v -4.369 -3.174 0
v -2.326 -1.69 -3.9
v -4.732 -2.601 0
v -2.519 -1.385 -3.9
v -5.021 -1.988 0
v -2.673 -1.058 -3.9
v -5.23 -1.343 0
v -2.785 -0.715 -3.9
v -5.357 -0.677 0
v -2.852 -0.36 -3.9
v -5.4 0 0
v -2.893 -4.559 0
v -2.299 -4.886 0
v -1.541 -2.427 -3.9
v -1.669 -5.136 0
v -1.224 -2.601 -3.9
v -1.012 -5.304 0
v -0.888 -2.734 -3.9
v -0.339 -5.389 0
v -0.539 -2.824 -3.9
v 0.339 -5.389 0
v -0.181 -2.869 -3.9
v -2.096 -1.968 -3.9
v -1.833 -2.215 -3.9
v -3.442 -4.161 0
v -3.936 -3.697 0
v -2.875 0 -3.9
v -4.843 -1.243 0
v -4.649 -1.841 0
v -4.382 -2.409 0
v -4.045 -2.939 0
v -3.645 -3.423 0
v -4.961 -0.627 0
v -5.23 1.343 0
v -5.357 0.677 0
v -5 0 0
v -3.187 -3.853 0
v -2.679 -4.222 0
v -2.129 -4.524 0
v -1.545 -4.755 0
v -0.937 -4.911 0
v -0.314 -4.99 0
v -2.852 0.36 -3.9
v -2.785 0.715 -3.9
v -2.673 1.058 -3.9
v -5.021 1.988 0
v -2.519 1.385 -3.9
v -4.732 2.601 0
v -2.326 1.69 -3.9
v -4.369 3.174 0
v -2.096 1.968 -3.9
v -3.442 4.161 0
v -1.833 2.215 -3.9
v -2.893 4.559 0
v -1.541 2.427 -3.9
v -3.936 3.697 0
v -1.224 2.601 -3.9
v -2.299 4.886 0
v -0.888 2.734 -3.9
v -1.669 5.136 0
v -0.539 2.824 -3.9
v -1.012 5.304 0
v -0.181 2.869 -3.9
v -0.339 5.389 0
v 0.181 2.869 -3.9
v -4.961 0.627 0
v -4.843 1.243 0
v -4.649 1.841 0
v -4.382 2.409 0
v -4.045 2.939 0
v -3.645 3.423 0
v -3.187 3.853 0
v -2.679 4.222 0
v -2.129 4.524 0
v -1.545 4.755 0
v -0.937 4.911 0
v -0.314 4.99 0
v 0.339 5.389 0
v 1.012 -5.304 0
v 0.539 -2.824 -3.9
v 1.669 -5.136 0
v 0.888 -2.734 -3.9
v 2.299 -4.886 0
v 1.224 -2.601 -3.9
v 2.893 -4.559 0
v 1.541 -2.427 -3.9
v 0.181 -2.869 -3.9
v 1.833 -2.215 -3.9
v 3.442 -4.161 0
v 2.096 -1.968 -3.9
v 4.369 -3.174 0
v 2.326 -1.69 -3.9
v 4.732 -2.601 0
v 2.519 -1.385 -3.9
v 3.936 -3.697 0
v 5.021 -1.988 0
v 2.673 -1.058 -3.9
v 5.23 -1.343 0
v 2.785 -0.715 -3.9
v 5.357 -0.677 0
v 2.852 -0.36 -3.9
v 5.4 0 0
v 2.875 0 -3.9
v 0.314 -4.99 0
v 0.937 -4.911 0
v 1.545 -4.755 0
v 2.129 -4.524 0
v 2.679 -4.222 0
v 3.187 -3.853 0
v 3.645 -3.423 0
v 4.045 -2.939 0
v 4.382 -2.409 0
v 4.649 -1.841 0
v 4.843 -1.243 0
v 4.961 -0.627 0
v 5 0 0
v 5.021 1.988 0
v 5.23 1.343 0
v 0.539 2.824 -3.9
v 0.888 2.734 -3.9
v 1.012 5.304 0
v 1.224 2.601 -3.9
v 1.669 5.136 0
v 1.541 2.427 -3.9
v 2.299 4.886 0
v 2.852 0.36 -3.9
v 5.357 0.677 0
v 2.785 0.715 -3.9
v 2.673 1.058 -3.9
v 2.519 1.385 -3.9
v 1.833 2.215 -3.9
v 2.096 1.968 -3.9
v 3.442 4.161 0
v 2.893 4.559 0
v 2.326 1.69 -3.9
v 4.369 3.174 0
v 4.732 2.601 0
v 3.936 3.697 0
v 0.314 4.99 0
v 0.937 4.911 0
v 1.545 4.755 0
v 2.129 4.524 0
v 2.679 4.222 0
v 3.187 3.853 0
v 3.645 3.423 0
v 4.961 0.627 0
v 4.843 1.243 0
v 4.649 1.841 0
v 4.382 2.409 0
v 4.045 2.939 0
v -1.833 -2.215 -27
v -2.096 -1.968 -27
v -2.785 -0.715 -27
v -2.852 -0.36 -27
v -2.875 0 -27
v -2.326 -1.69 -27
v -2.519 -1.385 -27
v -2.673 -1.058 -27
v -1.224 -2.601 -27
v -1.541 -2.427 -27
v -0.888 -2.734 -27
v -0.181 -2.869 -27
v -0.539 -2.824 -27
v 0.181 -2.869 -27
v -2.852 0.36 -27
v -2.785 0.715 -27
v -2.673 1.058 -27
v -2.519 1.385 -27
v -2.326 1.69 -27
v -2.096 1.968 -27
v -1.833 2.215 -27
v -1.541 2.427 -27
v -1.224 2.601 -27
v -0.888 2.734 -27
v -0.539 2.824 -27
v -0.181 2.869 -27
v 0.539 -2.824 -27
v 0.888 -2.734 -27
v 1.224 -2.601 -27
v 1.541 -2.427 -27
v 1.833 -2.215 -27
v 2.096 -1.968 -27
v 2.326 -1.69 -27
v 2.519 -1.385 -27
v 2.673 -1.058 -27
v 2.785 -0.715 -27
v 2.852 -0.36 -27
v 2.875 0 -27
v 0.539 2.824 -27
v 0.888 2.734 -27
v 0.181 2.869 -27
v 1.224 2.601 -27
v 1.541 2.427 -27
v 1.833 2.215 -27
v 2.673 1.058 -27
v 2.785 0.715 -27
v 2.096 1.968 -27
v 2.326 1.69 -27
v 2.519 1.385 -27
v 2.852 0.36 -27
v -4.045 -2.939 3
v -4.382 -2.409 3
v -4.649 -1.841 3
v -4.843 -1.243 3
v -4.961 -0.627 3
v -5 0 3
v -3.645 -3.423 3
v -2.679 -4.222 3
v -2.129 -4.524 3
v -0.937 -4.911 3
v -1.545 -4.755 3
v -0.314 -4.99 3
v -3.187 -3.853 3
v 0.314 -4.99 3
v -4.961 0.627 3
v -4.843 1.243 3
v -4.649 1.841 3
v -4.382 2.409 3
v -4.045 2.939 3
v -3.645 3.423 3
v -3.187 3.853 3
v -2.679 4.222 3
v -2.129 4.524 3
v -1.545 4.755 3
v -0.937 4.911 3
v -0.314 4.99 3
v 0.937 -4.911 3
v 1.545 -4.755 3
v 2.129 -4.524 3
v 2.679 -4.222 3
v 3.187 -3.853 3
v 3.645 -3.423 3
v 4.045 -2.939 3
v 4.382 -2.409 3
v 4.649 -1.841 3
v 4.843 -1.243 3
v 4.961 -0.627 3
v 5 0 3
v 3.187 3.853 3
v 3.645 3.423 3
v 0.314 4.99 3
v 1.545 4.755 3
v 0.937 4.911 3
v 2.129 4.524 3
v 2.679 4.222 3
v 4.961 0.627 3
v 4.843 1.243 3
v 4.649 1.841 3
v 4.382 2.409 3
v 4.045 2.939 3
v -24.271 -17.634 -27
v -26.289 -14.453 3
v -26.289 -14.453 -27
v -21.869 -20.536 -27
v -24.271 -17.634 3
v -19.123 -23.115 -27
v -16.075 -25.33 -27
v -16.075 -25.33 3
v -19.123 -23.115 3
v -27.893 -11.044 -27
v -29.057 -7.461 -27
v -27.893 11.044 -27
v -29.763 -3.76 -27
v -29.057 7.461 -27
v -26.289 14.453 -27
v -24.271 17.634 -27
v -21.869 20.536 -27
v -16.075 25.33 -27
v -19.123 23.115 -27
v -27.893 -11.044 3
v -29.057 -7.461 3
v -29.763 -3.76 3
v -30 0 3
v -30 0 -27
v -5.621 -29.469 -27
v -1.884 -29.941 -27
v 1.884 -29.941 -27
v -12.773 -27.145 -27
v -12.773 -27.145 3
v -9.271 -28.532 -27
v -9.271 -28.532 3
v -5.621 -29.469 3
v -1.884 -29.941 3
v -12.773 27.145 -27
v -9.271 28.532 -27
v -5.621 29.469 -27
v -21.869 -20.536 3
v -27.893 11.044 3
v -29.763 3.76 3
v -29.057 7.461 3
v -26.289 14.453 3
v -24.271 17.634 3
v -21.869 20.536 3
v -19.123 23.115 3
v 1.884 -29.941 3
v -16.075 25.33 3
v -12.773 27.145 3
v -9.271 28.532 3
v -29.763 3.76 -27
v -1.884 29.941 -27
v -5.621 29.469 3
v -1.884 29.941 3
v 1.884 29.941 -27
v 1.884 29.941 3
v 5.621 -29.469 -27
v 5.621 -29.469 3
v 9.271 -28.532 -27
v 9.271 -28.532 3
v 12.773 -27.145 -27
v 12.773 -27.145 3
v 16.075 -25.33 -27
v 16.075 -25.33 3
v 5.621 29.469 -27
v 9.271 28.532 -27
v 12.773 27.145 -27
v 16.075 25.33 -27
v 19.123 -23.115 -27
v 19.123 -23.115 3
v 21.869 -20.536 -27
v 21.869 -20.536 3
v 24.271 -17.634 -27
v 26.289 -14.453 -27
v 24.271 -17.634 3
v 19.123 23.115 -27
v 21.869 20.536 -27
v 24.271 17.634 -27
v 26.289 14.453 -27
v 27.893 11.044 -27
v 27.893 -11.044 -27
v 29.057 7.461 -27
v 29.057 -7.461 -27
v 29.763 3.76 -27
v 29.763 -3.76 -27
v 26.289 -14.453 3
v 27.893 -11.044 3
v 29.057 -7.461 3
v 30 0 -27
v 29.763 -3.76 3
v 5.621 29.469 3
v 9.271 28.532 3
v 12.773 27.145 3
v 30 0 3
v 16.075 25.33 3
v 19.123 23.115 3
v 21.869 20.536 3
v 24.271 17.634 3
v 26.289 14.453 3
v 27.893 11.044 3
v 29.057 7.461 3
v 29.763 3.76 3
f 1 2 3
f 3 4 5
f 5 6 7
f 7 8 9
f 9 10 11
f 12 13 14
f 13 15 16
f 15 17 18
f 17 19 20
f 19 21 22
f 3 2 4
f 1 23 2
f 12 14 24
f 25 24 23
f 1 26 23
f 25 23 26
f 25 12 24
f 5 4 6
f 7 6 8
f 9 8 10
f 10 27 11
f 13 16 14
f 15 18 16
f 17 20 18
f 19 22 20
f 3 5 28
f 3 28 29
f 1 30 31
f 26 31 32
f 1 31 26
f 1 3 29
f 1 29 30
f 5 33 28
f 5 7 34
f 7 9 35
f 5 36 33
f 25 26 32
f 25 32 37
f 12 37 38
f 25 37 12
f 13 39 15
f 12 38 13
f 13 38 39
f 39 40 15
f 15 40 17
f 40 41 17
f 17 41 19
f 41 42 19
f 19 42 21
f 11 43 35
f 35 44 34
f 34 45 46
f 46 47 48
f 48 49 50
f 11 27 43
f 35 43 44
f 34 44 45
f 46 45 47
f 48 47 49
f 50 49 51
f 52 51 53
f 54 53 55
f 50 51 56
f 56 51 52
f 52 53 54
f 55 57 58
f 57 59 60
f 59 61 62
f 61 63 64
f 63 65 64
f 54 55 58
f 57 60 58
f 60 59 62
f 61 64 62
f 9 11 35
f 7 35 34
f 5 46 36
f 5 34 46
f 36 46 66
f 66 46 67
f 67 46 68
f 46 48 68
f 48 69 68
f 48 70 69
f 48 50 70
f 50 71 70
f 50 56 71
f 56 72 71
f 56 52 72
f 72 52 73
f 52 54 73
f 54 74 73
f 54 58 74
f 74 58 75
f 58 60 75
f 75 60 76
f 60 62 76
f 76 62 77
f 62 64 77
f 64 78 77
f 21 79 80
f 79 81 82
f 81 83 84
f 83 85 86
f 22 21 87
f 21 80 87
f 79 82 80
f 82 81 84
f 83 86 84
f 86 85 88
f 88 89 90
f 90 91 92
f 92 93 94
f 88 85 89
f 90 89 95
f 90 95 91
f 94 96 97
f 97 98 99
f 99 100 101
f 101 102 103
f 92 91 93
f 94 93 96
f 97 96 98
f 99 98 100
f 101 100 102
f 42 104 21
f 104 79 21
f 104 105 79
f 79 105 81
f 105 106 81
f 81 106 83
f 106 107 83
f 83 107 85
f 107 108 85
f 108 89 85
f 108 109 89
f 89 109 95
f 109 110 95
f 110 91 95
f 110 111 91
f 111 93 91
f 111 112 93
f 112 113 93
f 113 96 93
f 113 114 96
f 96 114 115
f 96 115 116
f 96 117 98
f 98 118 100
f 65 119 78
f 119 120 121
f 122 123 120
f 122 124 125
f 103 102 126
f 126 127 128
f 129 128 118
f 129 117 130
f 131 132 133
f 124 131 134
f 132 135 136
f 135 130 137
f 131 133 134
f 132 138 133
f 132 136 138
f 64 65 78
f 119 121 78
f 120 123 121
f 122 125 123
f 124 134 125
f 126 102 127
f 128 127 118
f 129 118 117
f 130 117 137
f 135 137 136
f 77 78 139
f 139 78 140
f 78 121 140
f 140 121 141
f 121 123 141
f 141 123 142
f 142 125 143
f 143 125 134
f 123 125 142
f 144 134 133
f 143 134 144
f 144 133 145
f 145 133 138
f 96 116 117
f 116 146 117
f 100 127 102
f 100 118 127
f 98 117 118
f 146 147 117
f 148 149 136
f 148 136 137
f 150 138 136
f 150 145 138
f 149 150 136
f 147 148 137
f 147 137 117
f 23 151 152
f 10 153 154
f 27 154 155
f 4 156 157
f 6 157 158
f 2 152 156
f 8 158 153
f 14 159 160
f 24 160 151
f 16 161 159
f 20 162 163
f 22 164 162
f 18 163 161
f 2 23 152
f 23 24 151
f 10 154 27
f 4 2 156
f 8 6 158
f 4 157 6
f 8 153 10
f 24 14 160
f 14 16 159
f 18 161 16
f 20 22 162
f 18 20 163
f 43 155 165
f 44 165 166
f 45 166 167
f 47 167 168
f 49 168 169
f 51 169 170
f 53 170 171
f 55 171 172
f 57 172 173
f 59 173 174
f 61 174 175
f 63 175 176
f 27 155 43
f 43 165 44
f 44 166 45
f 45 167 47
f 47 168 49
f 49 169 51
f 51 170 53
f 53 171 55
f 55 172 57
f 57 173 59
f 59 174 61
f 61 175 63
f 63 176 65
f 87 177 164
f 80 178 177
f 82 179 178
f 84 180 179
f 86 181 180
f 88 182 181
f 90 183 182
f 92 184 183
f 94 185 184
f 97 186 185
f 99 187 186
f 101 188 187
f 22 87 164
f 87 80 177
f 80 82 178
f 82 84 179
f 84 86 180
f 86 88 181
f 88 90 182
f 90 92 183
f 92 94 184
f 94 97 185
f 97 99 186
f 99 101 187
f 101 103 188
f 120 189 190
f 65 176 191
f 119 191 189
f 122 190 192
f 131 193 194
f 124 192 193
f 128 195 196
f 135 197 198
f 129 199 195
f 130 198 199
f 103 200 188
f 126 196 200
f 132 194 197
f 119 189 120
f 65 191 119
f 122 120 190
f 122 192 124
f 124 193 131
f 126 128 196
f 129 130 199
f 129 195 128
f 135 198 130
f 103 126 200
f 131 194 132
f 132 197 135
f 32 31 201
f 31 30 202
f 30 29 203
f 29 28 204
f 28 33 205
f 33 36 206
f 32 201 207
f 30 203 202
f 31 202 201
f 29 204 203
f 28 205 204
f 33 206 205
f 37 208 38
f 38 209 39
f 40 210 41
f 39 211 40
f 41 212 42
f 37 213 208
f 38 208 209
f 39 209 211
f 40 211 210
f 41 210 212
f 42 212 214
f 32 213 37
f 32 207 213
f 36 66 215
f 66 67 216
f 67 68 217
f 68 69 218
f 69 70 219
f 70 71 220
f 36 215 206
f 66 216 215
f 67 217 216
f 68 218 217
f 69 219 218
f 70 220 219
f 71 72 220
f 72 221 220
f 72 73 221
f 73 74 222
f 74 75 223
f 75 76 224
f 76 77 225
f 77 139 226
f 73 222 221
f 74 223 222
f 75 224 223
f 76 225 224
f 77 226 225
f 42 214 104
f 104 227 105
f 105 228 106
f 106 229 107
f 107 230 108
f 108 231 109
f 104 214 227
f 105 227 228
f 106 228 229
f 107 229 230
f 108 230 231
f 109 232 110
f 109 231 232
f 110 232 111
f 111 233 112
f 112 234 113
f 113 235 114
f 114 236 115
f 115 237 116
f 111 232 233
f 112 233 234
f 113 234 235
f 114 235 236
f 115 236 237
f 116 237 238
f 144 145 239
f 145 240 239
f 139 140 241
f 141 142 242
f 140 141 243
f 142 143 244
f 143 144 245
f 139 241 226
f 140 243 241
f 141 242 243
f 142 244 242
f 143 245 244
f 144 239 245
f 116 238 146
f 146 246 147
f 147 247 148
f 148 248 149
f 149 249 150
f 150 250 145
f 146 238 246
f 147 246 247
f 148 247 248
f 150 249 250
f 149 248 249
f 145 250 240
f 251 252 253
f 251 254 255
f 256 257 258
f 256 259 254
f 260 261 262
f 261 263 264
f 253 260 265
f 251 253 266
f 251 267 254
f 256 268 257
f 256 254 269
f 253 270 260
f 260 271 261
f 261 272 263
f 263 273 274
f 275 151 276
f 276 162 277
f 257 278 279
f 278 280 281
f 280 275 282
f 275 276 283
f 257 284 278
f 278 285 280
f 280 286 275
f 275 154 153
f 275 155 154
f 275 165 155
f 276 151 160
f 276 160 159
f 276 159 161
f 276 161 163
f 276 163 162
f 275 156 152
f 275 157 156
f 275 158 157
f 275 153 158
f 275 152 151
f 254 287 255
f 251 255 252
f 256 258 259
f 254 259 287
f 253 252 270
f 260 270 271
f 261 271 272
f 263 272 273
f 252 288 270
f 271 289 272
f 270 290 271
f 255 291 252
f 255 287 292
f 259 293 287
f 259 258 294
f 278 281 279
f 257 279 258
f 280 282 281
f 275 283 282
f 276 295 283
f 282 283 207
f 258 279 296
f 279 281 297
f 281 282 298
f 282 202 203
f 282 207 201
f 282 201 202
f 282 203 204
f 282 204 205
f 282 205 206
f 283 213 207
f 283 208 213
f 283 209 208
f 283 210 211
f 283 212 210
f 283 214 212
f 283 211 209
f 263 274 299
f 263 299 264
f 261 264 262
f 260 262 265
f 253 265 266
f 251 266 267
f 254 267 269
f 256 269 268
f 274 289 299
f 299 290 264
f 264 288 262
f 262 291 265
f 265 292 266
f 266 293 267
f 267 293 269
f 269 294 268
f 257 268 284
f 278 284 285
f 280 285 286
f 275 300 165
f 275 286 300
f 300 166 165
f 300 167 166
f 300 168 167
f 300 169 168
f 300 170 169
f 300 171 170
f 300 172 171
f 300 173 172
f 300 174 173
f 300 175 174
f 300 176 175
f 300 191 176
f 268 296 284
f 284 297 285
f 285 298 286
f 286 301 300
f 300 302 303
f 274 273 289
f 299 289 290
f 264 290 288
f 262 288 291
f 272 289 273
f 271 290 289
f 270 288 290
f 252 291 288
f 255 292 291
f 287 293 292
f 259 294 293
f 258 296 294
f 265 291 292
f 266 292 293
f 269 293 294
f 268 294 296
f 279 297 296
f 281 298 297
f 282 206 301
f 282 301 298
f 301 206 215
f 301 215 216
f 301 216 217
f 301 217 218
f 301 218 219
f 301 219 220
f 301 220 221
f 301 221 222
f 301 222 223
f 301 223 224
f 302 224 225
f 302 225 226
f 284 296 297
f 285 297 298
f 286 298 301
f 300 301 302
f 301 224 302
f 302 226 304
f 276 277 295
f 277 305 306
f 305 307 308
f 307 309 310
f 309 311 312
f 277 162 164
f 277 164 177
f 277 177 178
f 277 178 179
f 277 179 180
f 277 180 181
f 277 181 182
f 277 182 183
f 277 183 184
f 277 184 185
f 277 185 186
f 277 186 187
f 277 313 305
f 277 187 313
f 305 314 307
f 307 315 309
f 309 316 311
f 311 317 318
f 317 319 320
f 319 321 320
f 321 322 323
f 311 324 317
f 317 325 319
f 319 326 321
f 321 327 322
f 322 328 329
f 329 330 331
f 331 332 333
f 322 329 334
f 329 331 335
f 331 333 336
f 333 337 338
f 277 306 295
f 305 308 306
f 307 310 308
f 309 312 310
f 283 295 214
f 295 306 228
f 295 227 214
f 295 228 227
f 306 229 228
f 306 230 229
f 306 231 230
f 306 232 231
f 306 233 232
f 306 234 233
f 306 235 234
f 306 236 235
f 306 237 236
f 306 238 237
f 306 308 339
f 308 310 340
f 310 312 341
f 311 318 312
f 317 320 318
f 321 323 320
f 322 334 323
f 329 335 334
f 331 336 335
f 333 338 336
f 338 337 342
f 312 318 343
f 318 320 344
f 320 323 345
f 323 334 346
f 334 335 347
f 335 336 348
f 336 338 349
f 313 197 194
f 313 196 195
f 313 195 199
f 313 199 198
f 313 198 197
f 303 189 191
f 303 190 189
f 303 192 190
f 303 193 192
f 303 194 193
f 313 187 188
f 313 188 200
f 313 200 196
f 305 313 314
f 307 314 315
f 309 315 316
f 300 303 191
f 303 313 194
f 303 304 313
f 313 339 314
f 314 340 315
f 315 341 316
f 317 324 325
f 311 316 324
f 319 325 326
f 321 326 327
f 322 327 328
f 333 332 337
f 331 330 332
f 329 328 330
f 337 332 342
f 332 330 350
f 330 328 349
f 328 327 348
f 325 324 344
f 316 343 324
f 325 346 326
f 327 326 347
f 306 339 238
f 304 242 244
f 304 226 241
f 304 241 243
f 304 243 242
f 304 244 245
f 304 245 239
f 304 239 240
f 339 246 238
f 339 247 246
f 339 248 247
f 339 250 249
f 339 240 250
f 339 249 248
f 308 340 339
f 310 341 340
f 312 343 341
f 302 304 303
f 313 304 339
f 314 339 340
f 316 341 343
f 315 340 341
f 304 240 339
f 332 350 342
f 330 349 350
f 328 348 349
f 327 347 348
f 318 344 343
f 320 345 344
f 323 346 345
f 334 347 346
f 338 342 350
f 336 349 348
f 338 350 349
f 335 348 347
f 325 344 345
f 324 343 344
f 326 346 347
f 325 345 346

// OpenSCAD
$fn = 50;


difference() {
	union() {
		translate(v = [0, 0, -27.0000000000]) {
			cylinder(h = 30, r = 30.0000000000);
		}
	}
	union() {
		translate(v = [0, 0, 0]) {
			rotate(a = [0, 0, 0]) {
				difference() {
					union() {
						translate(v = [0, 0, -30.0000000000]) {
							cylinder(h = 30, r = 2.6000000000);
						}
						translate(v = [0, 0, -3.9000000000]) {
							cylinder(h = 3.9000000000, r1 = 2.8750000000, r2 = 5.4000000000);
						}
						translate(v = [0, 0, -30.0000000000]) {
							cylinder(h = 30, r = 2.8750000000);
						}
						translate(v = [0, 0, -30.0000000000]) {
							cylinder(h = 30, r = 2.6000000000);
						}
					}
					union();
				}
			}
		}
		#cylinder(h = 3, r = 5.0000000000);
	}
}
